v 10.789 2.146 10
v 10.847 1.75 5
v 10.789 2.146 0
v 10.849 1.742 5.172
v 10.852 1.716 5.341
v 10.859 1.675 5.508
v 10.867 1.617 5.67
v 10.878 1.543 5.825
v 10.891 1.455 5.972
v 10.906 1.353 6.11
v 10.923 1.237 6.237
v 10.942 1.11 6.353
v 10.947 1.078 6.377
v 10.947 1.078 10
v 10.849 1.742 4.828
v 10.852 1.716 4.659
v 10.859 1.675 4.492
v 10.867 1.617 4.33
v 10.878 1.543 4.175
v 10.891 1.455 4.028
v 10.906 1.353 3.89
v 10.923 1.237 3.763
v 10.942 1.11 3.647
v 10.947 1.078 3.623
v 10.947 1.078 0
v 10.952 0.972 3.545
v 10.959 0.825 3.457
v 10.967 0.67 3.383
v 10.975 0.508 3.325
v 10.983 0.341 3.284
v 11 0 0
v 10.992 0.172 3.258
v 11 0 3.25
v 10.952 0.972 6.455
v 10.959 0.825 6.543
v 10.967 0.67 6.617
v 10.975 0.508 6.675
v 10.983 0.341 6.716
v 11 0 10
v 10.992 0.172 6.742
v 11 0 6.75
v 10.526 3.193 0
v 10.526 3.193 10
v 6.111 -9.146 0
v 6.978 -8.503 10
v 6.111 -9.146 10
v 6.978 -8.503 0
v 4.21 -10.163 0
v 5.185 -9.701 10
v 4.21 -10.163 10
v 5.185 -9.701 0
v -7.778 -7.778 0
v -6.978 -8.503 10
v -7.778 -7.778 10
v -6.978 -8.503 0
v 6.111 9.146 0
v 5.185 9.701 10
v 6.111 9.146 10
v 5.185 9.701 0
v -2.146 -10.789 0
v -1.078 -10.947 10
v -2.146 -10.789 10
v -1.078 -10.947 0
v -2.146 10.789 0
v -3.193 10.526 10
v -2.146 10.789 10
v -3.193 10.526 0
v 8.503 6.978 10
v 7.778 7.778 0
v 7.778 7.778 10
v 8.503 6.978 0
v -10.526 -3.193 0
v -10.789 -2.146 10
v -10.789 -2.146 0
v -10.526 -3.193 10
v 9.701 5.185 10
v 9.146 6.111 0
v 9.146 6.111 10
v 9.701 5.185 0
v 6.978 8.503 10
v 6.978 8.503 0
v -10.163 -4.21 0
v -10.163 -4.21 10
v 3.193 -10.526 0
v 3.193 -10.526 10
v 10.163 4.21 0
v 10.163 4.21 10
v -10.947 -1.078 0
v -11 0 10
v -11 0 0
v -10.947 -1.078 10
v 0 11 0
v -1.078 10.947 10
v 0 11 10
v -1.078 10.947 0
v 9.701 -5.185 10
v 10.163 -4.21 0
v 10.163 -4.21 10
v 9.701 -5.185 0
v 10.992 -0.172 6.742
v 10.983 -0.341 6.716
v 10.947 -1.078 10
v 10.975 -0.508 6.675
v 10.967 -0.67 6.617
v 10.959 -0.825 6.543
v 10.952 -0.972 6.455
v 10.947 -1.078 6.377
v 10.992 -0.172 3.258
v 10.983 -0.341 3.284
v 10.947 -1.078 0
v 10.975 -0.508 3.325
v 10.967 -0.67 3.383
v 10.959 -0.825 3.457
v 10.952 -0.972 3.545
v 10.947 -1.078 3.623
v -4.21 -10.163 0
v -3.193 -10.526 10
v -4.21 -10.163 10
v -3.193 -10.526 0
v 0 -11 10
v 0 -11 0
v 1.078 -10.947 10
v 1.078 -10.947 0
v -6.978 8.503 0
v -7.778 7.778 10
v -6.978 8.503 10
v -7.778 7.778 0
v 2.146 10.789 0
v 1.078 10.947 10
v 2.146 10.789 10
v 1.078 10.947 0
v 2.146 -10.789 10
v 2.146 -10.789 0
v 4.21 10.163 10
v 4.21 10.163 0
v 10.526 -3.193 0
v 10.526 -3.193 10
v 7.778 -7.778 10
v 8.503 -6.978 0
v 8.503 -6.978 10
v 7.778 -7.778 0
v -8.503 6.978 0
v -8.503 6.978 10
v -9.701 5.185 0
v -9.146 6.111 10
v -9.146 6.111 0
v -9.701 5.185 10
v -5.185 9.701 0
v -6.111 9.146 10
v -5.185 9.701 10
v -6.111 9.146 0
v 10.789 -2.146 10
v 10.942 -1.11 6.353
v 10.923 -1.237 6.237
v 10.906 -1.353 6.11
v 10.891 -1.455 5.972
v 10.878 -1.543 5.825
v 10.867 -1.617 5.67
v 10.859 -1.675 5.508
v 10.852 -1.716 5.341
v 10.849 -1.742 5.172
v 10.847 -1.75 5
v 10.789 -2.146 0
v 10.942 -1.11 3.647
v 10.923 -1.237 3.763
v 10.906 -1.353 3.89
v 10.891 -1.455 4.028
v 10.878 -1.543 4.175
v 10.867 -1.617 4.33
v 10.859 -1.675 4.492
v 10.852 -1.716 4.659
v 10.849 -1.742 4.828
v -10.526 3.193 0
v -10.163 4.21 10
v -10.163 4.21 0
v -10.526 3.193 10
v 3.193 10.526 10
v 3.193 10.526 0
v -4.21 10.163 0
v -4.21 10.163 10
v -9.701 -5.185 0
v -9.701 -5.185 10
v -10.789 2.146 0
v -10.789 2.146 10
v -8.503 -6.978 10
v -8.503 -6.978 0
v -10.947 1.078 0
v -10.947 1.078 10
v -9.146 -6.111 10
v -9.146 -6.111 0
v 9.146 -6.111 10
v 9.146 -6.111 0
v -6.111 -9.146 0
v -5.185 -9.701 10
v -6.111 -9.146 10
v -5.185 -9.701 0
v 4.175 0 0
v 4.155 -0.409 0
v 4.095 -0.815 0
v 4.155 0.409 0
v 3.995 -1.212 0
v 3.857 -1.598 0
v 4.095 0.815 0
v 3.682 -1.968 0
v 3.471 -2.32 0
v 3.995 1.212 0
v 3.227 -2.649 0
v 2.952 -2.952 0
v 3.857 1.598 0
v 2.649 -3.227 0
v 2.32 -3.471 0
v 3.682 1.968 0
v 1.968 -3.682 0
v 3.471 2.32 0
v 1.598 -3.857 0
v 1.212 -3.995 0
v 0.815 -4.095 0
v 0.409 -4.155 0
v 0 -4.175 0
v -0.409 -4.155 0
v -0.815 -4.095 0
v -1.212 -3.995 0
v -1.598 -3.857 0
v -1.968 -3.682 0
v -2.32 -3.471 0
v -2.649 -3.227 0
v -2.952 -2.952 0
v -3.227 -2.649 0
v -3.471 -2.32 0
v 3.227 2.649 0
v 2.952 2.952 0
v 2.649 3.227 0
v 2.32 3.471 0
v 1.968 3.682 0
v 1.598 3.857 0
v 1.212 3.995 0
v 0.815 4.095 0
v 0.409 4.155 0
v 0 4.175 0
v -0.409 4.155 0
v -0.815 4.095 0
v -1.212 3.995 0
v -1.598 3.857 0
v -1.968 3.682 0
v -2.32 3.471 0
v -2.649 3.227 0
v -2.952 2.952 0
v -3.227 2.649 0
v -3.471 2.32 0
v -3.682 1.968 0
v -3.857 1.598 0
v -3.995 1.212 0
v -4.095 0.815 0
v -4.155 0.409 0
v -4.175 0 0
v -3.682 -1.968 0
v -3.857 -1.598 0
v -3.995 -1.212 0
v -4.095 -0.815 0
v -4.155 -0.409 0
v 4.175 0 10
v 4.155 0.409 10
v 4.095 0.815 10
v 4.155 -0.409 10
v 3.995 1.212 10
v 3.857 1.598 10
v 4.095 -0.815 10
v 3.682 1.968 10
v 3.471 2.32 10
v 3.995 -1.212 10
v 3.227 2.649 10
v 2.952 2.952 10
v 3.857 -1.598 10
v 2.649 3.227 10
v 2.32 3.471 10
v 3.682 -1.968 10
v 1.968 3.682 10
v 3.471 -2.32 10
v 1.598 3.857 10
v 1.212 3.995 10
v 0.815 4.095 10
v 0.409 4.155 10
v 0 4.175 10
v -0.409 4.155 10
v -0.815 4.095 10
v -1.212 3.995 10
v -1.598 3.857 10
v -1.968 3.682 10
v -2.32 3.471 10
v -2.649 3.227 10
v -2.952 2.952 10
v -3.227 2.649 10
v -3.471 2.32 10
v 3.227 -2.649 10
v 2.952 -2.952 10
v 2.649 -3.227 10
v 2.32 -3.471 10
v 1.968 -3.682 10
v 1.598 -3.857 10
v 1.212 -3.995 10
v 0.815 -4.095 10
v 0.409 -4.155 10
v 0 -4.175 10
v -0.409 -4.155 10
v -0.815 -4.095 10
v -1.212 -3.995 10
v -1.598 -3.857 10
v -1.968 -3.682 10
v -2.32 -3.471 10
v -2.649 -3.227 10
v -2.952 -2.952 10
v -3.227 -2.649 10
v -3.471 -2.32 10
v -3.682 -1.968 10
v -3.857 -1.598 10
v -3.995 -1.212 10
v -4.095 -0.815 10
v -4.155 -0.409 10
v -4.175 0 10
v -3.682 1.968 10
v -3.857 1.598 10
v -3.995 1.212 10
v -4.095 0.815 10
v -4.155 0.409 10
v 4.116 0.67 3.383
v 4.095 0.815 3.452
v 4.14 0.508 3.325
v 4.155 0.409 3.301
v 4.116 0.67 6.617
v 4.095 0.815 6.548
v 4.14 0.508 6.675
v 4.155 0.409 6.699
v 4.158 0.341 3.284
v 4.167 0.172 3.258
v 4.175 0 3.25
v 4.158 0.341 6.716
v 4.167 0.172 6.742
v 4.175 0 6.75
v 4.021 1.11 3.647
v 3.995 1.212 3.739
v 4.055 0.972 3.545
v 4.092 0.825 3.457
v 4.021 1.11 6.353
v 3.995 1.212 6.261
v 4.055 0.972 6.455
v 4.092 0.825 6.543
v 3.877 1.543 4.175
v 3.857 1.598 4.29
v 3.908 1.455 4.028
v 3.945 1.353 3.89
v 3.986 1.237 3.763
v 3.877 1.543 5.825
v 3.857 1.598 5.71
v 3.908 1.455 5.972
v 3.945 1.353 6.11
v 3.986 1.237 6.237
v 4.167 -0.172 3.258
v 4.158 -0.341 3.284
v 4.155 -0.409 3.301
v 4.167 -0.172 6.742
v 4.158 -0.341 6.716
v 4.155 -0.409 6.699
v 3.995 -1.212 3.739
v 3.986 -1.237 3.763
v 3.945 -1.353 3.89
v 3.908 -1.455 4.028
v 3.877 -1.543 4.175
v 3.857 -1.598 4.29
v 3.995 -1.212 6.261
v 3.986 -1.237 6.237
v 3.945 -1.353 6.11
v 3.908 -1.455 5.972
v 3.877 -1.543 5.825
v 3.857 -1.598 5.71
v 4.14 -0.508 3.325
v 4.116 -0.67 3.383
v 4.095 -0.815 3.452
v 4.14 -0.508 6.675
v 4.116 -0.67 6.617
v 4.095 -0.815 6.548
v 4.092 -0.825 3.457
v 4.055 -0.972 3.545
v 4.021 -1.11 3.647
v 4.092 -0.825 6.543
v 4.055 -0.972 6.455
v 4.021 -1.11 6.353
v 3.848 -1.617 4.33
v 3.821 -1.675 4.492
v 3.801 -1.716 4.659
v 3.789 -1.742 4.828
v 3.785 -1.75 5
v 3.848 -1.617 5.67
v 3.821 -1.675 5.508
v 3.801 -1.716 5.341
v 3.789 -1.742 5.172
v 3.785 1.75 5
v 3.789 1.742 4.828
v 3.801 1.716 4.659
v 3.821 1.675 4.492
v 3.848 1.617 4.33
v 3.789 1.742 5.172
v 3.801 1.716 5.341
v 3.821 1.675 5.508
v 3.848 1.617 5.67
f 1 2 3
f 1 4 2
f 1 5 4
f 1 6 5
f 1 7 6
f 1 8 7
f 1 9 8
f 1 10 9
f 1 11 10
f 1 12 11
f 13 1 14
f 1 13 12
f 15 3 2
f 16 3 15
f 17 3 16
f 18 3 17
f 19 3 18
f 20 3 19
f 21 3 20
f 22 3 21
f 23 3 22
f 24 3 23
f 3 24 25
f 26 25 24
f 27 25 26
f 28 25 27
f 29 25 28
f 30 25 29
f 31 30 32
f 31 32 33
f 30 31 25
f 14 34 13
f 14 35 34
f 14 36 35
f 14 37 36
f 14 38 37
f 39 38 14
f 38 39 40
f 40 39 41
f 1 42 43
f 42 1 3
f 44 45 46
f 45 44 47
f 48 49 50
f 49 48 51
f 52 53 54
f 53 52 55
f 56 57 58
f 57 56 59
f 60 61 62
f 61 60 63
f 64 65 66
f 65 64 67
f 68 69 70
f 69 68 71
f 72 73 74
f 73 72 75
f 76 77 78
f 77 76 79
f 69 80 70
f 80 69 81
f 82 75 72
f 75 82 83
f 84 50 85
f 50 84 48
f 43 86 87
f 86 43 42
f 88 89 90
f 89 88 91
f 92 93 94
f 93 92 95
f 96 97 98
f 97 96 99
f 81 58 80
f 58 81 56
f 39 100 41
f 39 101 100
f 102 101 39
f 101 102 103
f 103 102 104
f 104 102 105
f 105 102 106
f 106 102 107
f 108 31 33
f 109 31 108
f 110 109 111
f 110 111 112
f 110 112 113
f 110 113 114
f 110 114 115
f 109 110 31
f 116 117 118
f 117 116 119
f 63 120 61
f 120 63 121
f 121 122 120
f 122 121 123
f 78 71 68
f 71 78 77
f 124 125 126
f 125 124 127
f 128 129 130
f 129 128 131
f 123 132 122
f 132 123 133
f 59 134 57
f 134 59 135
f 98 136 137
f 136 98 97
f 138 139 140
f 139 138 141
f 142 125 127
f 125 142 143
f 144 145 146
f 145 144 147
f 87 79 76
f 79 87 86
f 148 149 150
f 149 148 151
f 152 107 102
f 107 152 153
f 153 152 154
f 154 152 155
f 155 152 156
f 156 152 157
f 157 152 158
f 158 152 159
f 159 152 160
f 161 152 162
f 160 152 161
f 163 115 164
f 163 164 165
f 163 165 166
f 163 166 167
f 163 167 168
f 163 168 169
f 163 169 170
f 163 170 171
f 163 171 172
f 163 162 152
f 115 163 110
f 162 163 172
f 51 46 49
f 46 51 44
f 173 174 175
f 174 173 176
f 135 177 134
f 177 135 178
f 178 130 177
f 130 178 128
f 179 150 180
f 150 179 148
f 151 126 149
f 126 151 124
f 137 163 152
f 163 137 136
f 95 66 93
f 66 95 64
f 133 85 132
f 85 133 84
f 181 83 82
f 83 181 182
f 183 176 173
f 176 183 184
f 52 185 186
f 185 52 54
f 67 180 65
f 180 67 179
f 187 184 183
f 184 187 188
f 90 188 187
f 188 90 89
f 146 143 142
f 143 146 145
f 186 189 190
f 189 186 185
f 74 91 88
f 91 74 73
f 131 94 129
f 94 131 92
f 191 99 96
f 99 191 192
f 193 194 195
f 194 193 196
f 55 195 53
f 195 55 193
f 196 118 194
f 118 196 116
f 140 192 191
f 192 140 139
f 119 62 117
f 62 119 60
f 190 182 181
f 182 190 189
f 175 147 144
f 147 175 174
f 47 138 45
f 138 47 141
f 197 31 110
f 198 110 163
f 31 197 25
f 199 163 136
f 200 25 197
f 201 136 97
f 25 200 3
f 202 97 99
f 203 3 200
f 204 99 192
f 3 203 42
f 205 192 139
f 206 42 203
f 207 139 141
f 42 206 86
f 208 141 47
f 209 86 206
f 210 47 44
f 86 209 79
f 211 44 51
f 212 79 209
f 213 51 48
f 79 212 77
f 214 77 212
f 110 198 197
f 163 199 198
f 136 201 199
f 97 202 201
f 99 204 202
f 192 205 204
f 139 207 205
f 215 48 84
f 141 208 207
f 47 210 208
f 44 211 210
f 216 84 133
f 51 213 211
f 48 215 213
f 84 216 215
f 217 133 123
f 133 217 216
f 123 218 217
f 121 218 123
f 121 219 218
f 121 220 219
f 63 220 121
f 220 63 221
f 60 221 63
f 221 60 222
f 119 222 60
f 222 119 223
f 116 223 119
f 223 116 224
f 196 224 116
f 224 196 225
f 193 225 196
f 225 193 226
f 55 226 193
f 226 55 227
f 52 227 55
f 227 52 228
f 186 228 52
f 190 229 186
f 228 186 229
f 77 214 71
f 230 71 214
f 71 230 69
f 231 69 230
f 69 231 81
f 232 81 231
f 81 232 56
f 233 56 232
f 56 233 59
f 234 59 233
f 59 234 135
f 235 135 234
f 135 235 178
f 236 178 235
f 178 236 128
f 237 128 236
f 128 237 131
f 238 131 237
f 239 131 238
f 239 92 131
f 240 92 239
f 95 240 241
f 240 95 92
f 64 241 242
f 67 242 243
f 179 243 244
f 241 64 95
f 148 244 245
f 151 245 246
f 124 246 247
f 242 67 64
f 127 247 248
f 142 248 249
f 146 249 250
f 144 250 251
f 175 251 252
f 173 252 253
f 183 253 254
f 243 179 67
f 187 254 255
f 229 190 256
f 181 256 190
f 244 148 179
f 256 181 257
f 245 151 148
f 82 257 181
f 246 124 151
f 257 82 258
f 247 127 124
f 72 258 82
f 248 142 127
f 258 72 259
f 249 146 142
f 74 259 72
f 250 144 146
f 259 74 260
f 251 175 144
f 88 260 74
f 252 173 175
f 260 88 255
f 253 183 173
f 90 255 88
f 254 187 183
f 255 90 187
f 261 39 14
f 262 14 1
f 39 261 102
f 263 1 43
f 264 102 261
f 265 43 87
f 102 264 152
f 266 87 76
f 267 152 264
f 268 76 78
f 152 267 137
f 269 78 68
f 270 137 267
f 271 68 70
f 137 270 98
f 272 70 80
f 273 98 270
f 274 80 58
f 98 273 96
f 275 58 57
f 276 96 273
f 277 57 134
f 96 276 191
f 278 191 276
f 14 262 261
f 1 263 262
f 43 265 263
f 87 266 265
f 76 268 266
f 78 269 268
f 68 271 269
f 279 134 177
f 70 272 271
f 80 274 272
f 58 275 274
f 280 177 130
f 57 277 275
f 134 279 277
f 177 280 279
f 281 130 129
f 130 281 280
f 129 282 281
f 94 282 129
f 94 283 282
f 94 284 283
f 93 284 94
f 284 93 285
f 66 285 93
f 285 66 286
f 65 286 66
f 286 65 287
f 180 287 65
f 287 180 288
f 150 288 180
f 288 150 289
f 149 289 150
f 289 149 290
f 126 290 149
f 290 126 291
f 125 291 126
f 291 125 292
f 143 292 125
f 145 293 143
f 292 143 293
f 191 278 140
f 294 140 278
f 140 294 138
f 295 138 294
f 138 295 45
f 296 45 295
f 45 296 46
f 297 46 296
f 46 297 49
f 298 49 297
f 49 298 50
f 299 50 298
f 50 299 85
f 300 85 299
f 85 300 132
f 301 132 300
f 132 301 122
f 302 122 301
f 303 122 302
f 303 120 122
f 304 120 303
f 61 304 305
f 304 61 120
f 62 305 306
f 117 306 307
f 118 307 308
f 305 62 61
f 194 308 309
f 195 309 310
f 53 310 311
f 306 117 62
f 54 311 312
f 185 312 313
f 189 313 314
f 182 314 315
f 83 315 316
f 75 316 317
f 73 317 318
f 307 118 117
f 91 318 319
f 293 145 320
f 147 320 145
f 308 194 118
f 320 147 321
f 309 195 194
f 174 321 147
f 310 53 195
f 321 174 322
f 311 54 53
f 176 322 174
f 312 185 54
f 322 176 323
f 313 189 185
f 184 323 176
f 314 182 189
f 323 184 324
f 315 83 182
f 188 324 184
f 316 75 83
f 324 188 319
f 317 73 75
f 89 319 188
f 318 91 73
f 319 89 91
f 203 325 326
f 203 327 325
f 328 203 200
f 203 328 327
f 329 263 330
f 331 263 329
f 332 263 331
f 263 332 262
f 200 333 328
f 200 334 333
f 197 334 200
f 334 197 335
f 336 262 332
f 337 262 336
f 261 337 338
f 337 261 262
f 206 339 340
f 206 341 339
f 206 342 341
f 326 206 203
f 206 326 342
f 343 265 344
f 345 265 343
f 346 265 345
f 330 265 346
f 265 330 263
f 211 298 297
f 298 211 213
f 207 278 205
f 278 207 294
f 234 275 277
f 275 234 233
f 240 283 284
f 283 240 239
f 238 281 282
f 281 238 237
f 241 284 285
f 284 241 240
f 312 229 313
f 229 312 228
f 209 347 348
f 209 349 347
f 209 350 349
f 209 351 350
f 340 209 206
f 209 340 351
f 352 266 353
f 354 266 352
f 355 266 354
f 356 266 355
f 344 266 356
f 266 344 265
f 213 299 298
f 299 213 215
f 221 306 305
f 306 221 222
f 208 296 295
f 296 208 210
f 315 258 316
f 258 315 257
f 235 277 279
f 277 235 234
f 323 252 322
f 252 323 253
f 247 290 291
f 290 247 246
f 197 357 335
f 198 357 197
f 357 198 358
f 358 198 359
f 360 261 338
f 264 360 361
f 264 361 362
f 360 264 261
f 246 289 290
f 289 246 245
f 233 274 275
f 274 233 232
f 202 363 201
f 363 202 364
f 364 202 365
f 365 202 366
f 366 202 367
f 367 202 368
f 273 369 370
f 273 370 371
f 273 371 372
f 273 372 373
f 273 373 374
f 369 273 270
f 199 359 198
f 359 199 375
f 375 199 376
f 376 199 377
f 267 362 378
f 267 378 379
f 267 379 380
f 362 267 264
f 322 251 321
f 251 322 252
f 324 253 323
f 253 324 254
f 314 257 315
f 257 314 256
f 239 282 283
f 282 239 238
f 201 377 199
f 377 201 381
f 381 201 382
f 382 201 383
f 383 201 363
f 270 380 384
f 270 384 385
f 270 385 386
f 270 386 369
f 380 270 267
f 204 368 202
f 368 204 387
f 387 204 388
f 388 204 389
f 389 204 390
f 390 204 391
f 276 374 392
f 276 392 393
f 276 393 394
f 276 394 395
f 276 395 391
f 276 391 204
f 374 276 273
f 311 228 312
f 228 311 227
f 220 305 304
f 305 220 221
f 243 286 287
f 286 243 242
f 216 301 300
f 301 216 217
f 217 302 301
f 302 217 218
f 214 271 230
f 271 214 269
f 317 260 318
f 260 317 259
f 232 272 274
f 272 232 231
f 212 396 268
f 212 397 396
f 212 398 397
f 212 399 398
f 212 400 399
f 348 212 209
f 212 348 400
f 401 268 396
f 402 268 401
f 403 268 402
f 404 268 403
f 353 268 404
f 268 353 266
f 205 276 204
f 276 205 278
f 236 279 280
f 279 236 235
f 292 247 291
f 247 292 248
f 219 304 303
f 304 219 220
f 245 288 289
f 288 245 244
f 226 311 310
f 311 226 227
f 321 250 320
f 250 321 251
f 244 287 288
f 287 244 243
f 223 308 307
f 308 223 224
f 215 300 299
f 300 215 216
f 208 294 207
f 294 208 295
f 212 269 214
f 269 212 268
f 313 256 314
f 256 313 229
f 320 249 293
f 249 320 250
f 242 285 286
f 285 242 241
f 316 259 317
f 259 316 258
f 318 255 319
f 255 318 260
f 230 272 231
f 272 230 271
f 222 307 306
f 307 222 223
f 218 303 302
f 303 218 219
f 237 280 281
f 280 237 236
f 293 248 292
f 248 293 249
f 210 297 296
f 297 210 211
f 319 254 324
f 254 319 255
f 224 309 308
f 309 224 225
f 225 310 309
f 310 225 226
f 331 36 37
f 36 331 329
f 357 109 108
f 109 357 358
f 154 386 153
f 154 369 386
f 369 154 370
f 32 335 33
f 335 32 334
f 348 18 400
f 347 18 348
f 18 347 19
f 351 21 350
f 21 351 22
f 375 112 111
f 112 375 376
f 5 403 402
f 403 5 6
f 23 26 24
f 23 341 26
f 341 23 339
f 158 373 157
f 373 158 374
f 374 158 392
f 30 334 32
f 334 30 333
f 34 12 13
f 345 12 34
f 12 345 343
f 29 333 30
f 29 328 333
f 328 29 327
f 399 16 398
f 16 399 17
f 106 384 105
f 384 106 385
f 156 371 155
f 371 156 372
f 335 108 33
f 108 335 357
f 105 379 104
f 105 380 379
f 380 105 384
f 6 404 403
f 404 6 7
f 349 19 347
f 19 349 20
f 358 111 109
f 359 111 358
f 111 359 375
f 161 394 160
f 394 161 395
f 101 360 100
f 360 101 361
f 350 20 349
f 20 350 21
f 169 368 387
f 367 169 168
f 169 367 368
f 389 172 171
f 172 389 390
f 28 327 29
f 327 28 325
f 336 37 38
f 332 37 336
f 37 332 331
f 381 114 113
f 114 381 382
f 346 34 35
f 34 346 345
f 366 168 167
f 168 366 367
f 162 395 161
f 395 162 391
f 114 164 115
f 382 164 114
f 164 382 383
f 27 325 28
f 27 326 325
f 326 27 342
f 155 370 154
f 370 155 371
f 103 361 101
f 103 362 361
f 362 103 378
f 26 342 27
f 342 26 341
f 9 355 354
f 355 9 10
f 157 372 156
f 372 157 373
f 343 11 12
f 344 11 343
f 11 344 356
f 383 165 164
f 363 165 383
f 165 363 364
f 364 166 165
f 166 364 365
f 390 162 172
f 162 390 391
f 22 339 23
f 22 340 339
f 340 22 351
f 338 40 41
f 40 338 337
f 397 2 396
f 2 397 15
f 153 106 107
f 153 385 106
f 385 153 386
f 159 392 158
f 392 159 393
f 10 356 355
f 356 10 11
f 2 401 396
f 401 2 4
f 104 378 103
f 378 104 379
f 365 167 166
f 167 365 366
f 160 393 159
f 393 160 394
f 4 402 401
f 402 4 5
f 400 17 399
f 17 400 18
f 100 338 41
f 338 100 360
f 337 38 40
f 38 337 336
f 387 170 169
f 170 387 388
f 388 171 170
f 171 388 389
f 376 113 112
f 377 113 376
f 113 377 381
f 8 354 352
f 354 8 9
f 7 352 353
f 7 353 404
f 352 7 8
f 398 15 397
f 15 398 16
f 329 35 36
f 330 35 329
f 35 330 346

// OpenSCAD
// file: parameters.scad
// =============================================================================
// Gen-AP Vernier flux-claw mega - WOUND-AWARE (HARD GATE)
// Dual-rotor vernier: Rotor B +22.5 deg vs 12-slot stator; O5 flux claws
// =============================================================================

wire_awg            = 26;
wire_od             = 0.45;
turns               = 195;      // +10 vs Gen-AM 185
fill                = 0.70;
layers_per_face     = 2;
wind_build_axial    = layers_per_face * wire_od * fill;   // 0.63 mm
wind_build_radial   = 3 * wire_od * fill;                 // 0.945 mm

coil_id_r           = 16.0;
coil_od_r           = 63.0;
span_deg            = 25.0;
former_web          = 1.30;     // thinner vs AM 1.40
flange_t            = 0.60;
wall                = 1.2;
slot_w              = 2.4;
mount_hole          = 3.5;
tab_len             = 7.0;

former_bare_h       = former_web + 2 * flange_t;            // 2.50 mm
coil_envelope_h     = former_bare_h + 2 * wind_build_axial; // 3.76 mm

run_clear           = 0.50;
gap_spacer_h        = run_clear + wind_build_axial;         // 1.13 mm
m2m                 = coil_envelope_h + 2 * run_clear;      // 4.76 mm

coil_stations       = 12;
bay_r_in            = coil_id_r - 2.0 - wind_build_radial;
bay_r_out           = coil_od_r + 2.0 + wind_build_radial;
bay_span            = span_deg + 4.0;
bay_offset          = 2.0;
stator_thick        = former_bare_h;
stator_od           = 160.0;
shaft_clear_stator  = 34.0;
coil_mount_r        = 26.0;

large_pocket_d      = 20.3;
small_pocket_d      = 5.3;
pocket_h            = 5.2;
large_n             = 8;
R_large             = 39.5;     // closer to copper centroid vs AM R=40.5
R_small_inner       = 25.5;
R_small_mid         = 39.5;
R_small_outer       = 55.5;
carrier_od          = 156.0;
carrier_thick       = 7.5;
hub_h               = 10.0;
hub_od              = 30.0;
rotor_b_offset_deg  = 22.5;     // vernier offset vs 12-slot stator

shaft_bore          = 8.35;
bearing_d           = 21.85;
bearing_h           = 7.2;
m3_clear            = 3.5;
bolt_r_inner        = 36.0;
bolt_n_inner        = 6;
flange_bolt_r       = 72.0;
flange_bolt_n       = 6;
brace_r             = 68.0;
brace_d             = 4.3;
brace_n             = 4;

spacer_pad_od       = 14.0;
spacer_pad_id       = m3_clear;
endbell_od          = 160.0;
endbell_thick       = 8.0;
endbell_shaft_clear = 10.0;

$fn = 64;
// main file
// Gen-AP shaft collar — print ×2–4
include <parameters.scad>;
$fn = 64;
od = 22; id = shaft_bore; h = 10; set_d = 3.5;
difference() {
    cylinder(d=od, h=h);
    translate([0, 0, -0.1]) cylinder(d=id, h=h + 0.2);
    translate([0, 0, h/2]) rotate([0, 90, 0]) cylinder(d=set_d, h=od);
}
